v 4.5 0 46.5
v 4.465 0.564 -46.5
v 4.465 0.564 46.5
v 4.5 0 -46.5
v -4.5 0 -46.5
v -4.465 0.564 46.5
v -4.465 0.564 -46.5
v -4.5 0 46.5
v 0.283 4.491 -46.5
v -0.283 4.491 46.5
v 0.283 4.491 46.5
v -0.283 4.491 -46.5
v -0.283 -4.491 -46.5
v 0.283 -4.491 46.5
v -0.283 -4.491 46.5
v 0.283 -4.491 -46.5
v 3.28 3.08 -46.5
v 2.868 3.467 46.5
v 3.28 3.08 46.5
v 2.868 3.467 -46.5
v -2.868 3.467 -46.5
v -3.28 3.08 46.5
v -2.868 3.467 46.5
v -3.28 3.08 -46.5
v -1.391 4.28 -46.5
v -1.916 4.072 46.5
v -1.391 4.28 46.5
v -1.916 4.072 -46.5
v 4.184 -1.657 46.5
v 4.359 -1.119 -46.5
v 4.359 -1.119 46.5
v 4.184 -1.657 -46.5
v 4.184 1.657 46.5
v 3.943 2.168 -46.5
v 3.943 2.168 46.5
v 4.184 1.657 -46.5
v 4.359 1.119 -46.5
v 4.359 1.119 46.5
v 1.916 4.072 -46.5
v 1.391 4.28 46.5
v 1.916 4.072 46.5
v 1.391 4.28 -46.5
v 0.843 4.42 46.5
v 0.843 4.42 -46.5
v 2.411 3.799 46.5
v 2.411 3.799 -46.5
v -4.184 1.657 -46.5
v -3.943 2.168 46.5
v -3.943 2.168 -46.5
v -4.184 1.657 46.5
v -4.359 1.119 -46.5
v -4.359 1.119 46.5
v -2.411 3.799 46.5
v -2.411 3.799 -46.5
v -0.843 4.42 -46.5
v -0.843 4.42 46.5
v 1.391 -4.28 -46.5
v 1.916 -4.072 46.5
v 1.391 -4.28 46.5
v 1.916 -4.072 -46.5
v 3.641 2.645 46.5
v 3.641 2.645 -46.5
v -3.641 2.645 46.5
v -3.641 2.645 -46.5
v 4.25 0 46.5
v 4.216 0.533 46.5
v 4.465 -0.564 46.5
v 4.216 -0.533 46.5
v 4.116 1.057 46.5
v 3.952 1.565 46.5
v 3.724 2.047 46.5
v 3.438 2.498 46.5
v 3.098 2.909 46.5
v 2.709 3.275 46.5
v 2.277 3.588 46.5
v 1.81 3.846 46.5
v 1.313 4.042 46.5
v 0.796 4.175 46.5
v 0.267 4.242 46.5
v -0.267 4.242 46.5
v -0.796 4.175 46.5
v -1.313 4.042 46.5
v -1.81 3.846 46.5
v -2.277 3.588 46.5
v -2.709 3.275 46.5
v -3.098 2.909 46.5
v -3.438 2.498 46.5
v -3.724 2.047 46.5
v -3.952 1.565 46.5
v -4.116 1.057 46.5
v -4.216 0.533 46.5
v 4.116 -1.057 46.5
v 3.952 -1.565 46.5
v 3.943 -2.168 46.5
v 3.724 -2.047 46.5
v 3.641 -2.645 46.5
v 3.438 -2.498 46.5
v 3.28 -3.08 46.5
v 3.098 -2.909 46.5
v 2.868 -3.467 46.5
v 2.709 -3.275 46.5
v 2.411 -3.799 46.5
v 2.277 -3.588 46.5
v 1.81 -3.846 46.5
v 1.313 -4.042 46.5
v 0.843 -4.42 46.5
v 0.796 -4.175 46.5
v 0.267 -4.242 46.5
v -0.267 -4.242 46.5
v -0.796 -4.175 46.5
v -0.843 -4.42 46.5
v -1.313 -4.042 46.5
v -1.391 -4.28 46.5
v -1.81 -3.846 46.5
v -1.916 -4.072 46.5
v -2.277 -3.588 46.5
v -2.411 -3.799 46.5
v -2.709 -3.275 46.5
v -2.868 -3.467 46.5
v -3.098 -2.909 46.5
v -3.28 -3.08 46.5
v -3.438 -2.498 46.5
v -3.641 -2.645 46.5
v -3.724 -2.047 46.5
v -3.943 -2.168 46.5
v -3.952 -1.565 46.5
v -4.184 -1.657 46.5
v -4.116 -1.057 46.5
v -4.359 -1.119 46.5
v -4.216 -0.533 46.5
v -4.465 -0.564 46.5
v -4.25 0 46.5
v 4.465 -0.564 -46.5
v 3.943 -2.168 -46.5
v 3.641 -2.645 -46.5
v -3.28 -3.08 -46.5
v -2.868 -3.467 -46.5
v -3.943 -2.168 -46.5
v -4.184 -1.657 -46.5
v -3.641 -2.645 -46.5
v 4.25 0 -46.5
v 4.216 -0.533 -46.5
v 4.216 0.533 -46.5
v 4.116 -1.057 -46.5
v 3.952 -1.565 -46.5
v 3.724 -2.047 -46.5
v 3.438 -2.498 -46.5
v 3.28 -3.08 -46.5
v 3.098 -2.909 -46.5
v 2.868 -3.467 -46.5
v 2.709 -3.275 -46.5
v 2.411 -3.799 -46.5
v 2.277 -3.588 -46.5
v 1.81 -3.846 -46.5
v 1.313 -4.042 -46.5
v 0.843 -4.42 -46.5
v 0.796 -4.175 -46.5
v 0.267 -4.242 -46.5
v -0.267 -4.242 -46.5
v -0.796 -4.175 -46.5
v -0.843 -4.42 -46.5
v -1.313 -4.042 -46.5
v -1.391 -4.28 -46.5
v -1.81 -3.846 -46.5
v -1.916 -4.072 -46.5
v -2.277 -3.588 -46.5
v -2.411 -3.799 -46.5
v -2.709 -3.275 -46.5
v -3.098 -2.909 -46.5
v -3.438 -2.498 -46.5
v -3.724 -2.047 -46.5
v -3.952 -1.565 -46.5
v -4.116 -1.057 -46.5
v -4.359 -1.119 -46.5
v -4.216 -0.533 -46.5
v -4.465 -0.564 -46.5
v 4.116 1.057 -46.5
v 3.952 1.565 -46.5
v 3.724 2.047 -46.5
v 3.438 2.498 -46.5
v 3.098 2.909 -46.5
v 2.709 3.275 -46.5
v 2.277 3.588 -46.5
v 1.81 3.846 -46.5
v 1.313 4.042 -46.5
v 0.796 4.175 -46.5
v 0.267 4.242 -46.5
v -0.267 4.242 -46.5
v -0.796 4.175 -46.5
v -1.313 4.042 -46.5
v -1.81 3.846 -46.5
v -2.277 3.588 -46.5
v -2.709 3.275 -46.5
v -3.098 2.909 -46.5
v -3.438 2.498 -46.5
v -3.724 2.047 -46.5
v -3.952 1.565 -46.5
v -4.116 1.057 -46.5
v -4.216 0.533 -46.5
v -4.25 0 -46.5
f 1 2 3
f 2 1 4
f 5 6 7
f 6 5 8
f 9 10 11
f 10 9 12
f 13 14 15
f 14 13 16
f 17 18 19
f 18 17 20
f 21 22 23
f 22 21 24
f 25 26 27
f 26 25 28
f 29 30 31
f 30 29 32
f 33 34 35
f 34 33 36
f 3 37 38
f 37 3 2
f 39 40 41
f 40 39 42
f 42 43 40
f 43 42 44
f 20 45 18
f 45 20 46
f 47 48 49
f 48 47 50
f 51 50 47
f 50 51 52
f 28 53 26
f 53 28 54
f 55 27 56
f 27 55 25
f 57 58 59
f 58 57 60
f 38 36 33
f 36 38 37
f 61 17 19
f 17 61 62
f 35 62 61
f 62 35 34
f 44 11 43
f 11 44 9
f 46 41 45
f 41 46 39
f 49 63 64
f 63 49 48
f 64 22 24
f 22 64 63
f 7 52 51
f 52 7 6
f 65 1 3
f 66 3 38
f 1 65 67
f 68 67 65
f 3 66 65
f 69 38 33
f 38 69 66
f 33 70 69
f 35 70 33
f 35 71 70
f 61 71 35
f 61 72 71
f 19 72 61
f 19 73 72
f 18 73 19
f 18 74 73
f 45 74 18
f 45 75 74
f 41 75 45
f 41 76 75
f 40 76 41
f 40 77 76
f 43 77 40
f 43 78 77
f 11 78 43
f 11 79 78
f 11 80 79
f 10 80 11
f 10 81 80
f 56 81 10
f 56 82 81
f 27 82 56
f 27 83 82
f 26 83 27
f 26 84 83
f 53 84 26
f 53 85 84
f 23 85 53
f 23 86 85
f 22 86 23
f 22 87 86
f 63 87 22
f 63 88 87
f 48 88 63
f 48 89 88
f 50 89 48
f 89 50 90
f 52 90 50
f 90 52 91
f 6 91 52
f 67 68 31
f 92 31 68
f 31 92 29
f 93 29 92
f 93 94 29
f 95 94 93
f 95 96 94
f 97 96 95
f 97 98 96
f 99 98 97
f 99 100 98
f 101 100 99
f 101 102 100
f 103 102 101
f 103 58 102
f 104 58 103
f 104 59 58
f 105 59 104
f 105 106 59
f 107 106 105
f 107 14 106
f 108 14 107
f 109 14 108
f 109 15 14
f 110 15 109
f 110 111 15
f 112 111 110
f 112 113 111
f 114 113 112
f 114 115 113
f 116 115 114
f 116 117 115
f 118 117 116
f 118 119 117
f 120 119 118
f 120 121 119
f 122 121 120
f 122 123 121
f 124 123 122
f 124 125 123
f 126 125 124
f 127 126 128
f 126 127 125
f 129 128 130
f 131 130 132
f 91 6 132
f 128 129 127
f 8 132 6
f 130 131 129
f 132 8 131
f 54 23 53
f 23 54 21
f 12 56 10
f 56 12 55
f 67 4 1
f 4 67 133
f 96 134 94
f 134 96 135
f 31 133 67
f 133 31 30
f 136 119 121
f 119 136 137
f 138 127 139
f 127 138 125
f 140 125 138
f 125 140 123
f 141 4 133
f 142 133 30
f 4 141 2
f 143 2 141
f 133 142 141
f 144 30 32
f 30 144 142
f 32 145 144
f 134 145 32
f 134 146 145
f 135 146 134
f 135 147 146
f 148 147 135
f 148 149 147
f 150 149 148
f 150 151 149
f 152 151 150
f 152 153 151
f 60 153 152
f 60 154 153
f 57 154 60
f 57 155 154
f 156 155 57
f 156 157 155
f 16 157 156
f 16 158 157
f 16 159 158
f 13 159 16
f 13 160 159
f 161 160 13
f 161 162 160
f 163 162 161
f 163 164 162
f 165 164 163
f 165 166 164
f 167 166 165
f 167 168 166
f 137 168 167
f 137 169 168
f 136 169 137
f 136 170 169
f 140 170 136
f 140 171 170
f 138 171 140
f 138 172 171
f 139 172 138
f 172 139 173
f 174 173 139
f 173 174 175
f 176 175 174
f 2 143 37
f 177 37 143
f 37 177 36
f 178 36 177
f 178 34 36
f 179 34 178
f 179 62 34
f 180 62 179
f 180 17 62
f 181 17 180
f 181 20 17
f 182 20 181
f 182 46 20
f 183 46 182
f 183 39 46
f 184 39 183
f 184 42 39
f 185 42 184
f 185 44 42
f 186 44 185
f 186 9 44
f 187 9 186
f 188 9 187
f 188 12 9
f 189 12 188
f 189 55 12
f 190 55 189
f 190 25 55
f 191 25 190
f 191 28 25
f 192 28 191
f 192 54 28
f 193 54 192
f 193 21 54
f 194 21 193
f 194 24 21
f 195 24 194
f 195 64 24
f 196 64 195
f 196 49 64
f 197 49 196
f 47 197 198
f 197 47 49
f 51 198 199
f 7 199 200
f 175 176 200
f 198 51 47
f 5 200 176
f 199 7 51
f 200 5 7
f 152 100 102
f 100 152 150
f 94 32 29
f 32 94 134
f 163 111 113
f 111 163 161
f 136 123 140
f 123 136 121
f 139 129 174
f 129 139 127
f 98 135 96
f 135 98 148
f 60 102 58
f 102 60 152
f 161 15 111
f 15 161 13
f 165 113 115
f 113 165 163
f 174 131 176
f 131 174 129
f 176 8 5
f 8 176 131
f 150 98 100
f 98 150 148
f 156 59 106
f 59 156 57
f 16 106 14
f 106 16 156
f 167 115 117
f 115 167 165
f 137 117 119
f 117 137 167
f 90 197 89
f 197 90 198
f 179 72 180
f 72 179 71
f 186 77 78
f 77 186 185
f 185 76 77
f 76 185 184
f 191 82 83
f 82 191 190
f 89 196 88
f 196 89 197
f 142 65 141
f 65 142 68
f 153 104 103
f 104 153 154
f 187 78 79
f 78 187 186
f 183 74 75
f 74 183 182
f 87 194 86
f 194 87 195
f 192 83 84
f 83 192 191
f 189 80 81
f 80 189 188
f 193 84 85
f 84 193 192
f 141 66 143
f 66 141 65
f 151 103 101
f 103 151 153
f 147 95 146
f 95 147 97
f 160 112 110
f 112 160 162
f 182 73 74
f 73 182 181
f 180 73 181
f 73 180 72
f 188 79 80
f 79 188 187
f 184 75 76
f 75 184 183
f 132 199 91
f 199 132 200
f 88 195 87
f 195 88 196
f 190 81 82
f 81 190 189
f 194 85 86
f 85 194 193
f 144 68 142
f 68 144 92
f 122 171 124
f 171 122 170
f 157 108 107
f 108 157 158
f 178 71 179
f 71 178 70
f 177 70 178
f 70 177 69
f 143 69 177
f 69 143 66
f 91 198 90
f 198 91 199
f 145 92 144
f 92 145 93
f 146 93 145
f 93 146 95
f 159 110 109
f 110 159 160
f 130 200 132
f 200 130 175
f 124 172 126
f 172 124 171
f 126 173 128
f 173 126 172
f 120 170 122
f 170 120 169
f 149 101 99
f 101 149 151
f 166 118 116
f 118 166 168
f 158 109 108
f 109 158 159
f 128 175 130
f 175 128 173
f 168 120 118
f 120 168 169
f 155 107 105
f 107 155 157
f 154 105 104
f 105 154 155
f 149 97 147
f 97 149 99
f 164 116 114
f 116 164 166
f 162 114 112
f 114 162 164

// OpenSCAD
$fn = 50;


difference() {
	union() {
		translate(v = [0, 0, -46.5000000000]) {
			cylinder(h = 93, r = 4.5000000000);
		}
	}
	union() {
		translate(v = [0, 0, -100.0000000000]) {
			cylinder(h = 200, r = 4.2500000000);
		}
	}
}
